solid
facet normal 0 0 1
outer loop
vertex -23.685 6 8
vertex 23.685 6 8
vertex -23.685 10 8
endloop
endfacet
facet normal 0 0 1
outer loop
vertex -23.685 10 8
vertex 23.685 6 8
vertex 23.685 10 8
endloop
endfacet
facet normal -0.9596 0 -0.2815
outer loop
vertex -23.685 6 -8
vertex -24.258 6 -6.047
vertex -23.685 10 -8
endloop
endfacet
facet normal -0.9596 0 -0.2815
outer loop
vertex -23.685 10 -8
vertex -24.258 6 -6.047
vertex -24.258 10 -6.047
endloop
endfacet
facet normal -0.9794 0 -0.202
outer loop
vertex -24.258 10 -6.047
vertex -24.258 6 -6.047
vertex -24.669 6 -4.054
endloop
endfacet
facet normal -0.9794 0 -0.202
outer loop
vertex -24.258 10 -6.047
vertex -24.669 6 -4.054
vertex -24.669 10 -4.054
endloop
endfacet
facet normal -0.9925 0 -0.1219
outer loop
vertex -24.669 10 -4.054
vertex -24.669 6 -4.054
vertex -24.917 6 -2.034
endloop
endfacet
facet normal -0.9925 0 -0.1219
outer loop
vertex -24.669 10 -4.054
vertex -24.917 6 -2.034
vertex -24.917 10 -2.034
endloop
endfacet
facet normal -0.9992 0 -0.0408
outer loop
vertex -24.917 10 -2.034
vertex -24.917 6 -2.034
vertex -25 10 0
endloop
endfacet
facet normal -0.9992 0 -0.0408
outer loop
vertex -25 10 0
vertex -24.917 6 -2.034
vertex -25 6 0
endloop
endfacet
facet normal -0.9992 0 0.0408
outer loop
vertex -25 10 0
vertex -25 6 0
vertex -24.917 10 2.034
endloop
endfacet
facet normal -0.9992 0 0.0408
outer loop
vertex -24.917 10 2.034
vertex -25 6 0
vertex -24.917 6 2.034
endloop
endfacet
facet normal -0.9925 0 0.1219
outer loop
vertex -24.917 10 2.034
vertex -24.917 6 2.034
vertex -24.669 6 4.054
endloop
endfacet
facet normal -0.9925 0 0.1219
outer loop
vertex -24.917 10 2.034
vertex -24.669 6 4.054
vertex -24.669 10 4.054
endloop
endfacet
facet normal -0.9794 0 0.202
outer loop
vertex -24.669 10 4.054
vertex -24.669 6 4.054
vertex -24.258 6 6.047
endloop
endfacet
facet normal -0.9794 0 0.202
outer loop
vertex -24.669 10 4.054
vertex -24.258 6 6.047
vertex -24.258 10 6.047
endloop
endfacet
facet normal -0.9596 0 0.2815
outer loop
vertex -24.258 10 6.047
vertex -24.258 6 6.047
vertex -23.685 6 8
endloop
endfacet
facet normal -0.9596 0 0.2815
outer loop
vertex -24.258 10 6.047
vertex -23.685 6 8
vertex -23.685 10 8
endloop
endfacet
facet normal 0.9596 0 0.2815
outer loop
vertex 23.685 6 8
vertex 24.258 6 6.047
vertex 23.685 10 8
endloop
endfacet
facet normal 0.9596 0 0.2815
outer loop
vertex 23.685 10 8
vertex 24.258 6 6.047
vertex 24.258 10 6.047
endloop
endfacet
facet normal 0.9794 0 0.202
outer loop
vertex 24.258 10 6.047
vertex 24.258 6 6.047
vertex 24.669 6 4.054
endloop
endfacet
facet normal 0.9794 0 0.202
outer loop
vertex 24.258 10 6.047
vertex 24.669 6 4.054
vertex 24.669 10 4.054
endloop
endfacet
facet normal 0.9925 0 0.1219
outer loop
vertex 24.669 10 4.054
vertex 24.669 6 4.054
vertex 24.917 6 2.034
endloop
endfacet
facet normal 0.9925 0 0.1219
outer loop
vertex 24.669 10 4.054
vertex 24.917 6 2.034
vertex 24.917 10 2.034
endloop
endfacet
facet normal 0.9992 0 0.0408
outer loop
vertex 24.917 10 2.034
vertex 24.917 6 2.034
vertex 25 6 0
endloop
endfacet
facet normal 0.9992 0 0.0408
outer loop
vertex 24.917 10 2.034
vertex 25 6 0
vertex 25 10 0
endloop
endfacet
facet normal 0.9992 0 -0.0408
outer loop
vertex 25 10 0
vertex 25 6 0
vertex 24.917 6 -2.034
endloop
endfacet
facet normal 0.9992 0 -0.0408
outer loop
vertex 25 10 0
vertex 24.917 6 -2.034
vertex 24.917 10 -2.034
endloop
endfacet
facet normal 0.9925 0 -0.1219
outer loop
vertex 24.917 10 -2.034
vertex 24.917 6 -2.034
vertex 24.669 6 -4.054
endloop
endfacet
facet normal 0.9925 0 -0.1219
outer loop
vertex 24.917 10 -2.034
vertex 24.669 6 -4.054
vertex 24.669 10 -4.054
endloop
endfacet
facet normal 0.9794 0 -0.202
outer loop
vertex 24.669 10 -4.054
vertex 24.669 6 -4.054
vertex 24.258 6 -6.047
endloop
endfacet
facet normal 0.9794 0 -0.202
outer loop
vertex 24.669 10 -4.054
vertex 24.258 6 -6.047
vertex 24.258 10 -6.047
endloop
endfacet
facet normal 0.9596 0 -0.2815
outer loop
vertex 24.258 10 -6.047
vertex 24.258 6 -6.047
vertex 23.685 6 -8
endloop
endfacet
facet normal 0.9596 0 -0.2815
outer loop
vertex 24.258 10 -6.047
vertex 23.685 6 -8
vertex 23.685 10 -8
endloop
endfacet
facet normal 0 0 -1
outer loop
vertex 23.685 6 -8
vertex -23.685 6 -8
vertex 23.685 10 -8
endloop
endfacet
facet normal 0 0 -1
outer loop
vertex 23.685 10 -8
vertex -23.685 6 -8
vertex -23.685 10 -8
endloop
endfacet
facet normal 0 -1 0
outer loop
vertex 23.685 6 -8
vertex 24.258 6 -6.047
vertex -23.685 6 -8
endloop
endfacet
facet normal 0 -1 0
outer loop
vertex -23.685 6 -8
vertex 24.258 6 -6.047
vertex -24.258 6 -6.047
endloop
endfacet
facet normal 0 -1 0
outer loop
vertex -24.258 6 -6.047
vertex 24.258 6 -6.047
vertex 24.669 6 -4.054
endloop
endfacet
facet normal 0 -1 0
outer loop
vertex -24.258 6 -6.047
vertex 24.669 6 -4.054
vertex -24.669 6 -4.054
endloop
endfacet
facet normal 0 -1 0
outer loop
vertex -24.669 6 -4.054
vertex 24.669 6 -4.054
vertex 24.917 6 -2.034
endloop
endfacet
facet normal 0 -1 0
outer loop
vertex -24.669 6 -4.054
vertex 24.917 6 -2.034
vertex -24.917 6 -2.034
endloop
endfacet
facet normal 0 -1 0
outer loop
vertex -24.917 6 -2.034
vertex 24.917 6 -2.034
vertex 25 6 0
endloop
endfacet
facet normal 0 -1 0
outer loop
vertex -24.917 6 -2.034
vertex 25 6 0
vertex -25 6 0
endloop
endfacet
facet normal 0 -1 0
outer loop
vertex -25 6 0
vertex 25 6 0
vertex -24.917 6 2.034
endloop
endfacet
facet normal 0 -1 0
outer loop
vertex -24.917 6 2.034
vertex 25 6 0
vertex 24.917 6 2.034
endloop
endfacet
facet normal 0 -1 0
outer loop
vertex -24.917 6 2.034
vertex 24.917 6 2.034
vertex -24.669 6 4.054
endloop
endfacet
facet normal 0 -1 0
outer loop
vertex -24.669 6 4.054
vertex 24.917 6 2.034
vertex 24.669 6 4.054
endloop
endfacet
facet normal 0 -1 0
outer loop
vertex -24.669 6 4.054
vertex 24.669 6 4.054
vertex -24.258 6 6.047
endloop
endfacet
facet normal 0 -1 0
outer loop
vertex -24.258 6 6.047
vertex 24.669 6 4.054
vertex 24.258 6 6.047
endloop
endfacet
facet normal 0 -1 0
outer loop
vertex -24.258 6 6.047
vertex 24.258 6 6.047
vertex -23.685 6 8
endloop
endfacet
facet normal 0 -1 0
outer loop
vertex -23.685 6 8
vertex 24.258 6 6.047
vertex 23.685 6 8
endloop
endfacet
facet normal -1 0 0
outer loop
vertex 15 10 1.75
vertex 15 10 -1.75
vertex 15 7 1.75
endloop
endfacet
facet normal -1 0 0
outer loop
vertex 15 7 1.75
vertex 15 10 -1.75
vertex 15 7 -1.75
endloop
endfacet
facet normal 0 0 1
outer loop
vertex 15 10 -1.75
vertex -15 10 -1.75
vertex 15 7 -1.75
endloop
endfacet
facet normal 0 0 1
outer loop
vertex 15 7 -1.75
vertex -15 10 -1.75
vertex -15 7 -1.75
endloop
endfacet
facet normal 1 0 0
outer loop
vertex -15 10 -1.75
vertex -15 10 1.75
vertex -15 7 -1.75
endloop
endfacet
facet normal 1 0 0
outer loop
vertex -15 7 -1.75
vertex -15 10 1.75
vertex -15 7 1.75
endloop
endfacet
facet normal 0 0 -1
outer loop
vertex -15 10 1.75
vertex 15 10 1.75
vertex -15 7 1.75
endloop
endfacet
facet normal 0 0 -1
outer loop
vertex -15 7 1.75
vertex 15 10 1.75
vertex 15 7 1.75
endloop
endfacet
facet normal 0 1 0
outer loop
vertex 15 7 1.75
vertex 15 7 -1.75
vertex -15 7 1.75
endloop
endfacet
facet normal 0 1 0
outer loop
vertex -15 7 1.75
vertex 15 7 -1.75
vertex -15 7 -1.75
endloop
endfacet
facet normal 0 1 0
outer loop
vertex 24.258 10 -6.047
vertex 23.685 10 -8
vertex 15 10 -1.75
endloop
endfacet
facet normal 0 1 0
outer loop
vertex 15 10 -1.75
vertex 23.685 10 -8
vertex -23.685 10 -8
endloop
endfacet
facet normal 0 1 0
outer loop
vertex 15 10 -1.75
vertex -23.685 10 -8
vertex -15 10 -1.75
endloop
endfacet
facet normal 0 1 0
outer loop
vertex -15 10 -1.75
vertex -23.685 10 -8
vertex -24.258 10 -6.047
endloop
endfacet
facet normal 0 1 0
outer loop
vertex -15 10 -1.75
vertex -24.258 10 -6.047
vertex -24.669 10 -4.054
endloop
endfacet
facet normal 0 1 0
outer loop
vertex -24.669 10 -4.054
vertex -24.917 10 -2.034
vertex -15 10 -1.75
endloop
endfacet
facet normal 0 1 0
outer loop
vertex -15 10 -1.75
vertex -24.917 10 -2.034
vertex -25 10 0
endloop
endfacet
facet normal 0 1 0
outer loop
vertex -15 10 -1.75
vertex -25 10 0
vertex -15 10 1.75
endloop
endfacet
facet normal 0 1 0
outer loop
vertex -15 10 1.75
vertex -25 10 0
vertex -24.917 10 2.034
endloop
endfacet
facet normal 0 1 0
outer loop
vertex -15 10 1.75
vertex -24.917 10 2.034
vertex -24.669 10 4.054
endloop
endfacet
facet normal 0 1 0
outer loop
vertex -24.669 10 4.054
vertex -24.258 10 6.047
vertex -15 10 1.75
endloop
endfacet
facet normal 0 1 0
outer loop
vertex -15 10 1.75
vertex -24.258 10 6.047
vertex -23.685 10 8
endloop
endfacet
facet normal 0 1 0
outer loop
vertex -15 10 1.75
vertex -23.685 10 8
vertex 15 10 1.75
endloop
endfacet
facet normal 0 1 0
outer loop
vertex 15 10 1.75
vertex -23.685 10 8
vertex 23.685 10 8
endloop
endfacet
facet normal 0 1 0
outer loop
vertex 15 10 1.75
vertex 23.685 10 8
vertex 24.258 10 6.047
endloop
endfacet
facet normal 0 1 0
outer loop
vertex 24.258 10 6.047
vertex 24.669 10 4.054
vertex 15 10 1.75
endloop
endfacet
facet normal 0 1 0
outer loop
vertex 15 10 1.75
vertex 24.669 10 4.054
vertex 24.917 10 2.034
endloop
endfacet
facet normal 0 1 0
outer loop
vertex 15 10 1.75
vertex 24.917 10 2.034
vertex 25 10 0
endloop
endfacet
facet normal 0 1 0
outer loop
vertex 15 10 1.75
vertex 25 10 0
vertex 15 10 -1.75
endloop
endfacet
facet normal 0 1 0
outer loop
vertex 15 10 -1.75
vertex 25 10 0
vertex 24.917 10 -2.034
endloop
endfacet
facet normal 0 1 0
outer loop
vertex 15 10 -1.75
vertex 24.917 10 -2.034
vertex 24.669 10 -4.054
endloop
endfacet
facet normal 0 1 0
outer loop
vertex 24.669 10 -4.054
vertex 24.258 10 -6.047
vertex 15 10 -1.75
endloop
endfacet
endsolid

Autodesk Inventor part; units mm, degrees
ref_plane "YZ Plane" through (0, 0, 0) normal (1, 0, 0) x (0, 1, 0)
ref_plane "XZ Plane" through (0, 0, 0) normal (0, 1, 0) x (-1, 0, 0)
ref_plane "XY Plane" through (0, 0, 0) normal (0, 0, 1) x (1, 0, 0)
sketch "Sketch1" plane through (0, 0, 0) normal (0, 1, 0) x (-1, 0, 0)
  circle A0 centre (0, 0) radius 25
  dimension "d2" = 50
extrude "Extrusion1" add sketch "Sketch1" along normal blind 10
sketch "Sketch2" plane through (0, 10, 0) normal (0, 1, 0) x (1, 0, 0)
  line L0 (-15, -1.75) -> (15, -1.75)
  line L1 (15, -1.75) -> (15, 1.75)
  line L2 (15, 1.75) -> (-15, 1.75)
  line L3 (-15, 1.75) -> (-15, -1.75)
  circle A0 centre (0, 0) radius 25 projected
  point P0 (-25, 0)
  point P1 (0, 25)
  dimension "d5" = 30
  dimension "d6" = 3.5
  dimension "d7" = 23.25
  dimension "d8" = 10
extrude "Extrusion2" cut sketch "Sketch2" against normal blind 3 contours L3 L2 L1 L0
sketch "Sketch3" plane through (0, 10, 0) normal (0, 1, 0) x (1, 0, 0)
  line L0 (-38.0663, 8) -> (91.0616, 8)
  line L1 (-15, 1.75) -> (15, 1.75) projected
  arc A0 (91.0616, 8) -> (-38.0663, 8) centre (26.4976, -23.1626) ccw
  circle A1 centre (0, 0) radius 25 construction
  line L2 (-25, 0) -> (81.9095, 0) construction
  line L3 (-38.0663, -8) -> (91.0616, -8)
  arc A2 (-38.0663, -8) -> (91.0616, -8) centre (26.4976, 23.1626) ccw
  point P0 (24.7878, -3.25)
  dimension "d11" = 6.25
extrude "Extrusion3" cut sketch "Sketch3" against normal blind 10
sketch "Sketch4" plane through (0, 0, 0) normal (0, -1, 0) x (1, 0, 0)
  line L0 (-23.6854, -8) -> (23.6854, -8) projected
  arc A0 (23.6854, -8) -> (23.6854, 8) centre (0, 0) ccw projected
  line L1 (23.6854, 8) -> (-23.6854, 8) projected
  arc A1 (-23.6854, 8) -> (-23.6854, -8) centre (0, 0) ccw projected
extrude "Extrusion4" cut sketch "Sketch4" against normal blind 6
properties part number "planetstand"
